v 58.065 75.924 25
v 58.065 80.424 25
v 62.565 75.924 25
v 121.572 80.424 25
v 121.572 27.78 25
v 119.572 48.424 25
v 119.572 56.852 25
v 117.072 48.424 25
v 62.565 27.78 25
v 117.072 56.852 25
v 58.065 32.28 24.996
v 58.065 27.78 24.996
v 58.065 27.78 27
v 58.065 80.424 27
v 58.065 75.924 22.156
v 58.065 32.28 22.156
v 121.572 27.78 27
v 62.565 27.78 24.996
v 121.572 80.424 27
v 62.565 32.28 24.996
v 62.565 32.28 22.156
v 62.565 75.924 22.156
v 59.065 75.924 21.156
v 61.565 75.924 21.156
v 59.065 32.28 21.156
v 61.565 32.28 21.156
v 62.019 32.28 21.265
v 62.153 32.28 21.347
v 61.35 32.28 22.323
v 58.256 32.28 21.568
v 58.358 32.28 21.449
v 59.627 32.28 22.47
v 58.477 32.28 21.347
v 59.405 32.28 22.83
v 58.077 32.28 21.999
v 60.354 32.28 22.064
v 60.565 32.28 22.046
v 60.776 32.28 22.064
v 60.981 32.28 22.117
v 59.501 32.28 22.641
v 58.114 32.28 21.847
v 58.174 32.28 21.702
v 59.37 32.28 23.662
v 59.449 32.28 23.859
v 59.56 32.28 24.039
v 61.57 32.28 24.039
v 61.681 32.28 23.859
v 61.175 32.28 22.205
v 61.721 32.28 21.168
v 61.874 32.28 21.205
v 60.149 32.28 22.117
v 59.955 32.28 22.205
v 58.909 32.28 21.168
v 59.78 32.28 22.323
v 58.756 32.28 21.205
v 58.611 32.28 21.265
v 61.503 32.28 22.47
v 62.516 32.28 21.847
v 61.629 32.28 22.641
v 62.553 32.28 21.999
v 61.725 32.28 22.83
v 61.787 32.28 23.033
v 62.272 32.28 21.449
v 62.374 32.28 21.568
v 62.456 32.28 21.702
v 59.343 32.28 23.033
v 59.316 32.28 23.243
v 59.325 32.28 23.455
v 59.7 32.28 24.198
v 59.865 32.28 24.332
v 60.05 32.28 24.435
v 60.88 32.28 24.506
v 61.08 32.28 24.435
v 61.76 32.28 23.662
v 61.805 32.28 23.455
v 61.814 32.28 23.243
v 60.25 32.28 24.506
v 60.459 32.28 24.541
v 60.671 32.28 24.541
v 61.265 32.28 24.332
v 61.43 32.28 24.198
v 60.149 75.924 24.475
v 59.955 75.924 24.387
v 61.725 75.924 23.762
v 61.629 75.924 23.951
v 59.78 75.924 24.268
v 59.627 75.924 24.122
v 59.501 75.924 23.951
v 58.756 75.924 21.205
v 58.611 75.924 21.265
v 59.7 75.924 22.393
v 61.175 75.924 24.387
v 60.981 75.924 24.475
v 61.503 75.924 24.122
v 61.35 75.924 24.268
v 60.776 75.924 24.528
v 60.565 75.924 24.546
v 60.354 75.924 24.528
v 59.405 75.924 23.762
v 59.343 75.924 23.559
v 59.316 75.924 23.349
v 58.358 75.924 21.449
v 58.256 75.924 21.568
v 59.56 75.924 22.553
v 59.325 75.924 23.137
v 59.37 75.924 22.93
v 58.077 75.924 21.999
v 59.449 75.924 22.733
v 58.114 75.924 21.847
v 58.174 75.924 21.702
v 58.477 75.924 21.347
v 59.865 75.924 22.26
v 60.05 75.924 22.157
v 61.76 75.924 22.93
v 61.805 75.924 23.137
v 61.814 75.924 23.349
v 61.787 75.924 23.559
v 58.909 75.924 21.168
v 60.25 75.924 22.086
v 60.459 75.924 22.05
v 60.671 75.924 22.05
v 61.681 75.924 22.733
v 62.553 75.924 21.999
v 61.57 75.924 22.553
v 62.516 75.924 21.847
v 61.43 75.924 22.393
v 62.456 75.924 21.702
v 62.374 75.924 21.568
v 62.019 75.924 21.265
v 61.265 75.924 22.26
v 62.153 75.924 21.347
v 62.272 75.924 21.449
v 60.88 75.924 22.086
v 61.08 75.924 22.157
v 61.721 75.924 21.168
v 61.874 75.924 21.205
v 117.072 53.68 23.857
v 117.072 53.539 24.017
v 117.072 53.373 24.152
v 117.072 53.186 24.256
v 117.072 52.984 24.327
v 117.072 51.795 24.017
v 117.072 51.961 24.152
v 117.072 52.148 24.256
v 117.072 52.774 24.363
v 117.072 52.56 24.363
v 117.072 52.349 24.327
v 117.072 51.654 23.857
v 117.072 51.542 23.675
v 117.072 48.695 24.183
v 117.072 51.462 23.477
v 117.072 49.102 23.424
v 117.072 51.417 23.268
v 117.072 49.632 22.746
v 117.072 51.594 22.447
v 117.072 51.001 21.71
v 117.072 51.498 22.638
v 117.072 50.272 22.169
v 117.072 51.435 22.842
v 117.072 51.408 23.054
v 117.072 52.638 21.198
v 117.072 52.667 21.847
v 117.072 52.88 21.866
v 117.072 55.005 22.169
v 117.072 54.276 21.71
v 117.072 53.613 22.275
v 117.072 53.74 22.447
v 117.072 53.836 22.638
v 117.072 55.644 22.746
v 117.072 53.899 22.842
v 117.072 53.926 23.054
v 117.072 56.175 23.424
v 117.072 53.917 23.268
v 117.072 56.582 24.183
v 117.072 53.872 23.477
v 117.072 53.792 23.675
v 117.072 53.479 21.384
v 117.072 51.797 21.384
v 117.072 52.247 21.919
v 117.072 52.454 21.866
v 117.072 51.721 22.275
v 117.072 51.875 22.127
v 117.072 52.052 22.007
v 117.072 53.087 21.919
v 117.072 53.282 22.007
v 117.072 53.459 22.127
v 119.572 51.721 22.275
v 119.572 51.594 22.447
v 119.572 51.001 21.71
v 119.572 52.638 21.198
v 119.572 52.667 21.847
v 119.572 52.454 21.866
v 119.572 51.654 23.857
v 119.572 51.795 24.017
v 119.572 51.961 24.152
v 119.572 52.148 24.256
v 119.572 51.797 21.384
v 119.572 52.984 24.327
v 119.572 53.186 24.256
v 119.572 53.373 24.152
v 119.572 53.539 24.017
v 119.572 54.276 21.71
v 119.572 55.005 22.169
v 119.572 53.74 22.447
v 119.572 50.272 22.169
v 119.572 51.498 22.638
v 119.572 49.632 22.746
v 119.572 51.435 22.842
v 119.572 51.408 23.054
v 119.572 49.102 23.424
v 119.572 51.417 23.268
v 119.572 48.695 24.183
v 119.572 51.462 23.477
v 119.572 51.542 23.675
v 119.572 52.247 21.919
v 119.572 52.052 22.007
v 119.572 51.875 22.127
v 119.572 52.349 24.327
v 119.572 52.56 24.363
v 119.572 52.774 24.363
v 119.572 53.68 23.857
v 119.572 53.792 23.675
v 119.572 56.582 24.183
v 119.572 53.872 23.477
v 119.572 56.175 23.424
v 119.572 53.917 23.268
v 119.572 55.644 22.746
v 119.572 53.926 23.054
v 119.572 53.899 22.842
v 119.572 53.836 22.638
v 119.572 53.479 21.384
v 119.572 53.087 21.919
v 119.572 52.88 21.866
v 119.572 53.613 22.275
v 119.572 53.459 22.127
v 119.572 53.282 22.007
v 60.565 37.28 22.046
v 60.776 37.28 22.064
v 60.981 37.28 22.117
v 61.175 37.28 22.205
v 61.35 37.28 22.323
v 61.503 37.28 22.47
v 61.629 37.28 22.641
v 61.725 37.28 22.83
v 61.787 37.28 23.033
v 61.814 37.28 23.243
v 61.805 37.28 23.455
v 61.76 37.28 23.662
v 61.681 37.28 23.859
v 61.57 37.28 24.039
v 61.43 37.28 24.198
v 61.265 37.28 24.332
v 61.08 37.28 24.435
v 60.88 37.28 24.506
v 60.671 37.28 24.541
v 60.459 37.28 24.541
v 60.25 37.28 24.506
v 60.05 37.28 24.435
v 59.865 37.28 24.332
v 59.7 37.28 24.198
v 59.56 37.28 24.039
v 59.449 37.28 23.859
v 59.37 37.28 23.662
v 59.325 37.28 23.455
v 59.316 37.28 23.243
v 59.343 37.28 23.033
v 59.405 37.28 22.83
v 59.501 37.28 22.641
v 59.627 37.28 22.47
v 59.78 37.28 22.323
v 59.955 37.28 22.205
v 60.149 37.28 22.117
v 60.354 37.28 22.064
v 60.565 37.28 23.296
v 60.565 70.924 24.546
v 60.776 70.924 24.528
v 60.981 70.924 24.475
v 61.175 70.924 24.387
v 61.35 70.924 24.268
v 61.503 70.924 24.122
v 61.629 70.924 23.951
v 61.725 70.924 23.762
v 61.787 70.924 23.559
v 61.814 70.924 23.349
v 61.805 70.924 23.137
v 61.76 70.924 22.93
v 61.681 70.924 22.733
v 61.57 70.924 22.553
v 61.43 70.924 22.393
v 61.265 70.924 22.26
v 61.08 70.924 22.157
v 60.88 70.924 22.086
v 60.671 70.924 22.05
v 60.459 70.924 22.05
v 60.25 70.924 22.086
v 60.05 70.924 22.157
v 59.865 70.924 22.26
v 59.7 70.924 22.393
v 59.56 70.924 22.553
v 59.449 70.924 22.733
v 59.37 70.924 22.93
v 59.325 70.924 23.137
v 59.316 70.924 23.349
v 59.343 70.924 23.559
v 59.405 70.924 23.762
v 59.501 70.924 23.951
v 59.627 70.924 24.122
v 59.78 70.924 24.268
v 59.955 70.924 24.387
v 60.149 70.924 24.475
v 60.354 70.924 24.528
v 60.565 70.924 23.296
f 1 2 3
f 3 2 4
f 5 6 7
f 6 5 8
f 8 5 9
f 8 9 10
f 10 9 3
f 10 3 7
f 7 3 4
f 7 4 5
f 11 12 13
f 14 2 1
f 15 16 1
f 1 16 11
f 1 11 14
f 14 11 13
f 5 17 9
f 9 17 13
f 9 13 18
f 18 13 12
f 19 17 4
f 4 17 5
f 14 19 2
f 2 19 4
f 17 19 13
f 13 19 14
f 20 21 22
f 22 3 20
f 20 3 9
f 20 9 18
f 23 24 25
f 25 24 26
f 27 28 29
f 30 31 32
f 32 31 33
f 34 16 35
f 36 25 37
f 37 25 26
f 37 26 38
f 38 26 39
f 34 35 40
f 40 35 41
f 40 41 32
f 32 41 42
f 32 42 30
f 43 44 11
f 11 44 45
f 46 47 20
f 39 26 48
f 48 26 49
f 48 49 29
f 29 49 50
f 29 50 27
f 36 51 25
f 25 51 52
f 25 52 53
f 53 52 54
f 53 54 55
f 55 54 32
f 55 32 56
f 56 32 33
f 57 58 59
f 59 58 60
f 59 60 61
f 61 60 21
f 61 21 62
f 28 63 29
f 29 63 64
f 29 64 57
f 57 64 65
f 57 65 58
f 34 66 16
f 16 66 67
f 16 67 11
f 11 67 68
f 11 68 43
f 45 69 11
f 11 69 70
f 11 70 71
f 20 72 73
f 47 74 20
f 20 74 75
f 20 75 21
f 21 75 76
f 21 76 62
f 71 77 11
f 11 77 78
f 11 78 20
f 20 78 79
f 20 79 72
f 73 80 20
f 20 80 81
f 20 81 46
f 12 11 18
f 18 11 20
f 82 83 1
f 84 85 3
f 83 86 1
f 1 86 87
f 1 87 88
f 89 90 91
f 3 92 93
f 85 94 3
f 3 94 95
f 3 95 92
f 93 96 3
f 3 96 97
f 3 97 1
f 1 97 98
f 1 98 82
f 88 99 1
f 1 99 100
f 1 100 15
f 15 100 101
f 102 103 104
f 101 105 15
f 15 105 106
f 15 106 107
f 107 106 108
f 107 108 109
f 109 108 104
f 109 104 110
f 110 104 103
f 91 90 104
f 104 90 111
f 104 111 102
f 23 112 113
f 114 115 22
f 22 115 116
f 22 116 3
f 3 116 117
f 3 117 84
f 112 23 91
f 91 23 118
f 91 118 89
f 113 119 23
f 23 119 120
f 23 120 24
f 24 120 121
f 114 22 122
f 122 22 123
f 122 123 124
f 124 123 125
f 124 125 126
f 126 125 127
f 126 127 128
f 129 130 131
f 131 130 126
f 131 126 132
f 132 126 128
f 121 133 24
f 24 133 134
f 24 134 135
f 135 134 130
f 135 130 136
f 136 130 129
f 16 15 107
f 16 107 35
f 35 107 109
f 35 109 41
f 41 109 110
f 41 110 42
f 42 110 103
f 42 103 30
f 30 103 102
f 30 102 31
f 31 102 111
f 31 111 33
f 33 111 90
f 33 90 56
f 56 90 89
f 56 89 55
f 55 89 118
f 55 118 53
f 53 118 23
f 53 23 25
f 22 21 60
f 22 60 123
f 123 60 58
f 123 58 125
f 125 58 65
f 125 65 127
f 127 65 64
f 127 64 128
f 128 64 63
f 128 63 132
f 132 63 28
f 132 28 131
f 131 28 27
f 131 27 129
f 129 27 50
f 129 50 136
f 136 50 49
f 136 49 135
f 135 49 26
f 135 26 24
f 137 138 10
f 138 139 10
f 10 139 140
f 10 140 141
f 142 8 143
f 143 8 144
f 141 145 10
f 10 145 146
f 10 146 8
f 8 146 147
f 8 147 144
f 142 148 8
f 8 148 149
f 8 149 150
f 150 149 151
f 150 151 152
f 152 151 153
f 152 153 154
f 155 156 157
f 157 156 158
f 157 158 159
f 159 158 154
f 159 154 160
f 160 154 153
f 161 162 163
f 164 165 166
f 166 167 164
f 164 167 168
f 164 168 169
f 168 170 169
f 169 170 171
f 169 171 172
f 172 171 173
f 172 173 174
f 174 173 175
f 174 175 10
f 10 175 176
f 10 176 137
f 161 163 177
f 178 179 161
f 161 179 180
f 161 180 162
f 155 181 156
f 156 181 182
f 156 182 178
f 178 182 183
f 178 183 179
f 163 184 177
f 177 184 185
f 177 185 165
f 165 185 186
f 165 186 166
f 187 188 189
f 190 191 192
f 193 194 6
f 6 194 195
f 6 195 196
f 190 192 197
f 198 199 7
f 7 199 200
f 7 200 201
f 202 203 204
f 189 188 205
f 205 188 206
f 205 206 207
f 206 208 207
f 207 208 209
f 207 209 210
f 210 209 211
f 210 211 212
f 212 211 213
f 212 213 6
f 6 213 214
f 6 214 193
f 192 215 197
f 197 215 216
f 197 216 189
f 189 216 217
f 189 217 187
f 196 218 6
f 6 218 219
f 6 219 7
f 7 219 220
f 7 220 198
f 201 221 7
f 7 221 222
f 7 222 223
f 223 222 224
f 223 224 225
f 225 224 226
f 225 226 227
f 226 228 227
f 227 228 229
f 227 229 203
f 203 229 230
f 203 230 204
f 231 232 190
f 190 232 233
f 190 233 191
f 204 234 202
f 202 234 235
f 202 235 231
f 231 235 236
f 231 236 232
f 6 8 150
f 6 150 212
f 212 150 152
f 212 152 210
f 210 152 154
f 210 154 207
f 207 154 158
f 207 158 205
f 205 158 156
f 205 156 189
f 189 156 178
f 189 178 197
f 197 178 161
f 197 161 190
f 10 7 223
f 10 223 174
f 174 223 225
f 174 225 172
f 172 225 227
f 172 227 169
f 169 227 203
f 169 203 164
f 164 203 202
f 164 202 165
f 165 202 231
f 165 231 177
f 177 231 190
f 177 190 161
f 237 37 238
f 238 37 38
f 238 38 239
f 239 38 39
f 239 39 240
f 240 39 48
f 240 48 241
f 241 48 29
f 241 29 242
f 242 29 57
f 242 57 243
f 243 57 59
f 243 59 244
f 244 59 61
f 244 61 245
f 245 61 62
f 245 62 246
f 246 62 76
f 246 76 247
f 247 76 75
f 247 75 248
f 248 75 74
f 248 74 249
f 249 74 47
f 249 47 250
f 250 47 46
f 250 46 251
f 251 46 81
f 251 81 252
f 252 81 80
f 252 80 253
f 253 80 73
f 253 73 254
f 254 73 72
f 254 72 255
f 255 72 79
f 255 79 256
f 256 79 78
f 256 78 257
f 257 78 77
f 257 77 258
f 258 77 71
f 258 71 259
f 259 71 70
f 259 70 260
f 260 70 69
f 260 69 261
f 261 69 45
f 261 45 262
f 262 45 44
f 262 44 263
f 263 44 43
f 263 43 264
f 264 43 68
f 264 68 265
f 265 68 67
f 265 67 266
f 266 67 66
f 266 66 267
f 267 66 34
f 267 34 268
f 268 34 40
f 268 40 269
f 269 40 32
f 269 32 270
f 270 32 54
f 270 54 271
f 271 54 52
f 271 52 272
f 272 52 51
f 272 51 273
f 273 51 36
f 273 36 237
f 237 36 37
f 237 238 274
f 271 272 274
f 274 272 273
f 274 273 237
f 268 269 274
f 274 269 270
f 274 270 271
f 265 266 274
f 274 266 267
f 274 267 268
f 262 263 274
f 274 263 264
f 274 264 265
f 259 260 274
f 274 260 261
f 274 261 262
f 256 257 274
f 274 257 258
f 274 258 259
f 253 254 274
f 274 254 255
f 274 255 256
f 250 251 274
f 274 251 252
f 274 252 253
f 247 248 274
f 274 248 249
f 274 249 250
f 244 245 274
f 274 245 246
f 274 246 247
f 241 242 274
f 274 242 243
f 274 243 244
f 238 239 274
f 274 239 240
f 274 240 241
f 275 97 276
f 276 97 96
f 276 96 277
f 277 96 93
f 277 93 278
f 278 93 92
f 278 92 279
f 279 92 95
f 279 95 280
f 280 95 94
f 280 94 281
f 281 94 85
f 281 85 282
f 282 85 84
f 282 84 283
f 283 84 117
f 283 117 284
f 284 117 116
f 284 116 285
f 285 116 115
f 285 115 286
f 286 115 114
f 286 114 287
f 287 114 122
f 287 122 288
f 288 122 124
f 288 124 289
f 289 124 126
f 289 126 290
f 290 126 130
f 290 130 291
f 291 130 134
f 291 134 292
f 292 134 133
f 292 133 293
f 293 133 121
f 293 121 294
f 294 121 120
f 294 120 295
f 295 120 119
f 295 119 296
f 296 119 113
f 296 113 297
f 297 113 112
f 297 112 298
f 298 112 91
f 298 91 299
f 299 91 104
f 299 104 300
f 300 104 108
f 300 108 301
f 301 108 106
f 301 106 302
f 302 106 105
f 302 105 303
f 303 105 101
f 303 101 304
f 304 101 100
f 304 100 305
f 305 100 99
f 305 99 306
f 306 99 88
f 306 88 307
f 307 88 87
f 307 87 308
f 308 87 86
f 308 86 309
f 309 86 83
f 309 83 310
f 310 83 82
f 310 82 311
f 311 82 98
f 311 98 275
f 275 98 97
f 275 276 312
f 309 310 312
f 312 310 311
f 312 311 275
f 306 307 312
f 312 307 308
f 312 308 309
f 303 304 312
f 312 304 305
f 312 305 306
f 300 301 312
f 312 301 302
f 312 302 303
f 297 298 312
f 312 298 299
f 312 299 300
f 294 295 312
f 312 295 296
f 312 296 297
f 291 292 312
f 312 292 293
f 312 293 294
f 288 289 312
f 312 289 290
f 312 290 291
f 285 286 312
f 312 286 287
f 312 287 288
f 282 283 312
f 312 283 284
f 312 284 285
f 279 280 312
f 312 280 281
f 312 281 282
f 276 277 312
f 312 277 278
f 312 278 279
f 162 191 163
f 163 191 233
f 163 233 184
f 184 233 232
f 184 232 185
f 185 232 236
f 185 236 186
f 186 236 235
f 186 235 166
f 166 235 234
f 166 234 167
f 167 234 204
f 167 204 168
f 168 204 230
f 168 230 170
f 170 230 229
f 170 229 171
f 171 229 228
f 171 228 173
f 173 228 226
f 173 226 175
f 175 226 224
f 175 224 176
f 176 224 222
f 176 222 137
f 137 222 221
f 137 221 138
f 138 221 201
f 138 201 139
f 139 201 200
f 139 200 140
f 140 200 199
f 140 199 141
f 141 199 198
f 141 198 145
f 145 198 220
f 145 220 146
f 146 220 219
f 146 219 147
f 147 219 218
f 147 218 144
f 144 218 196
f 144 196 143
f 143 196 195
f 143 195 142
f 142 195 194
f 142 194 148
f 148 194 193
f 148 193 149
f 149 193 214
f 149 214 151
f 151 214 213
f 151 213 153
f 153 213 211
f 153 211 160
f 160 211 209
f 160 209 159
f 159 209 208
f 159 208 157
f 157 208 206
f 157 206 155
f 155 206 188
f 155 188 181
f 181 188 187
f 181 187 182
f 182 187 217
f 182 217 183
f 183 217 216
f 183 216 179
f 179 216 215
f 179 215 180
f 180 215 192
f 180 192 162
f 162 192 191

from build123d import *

# Parameters (mm, degrees)
BOSS_EXTRUDE1_START = 5
SKETCH2_W           = 63.507
SKETCH2_H           = 52.644
BOSS_EXTRUDE1_DEPTH = 2
SKETCH5_W           = 4.5
SKETCH5_H           = 3.844091241
BOSS_EXTRUDE2_DEPTH = 52.5
SKETCH8_W           = 3.84
SKETCH8_H           = 4.5
CUT_EXTRUDE1_DEPTH  = 5
SKETCH9_W           = 3.844091241
SKETCH9_H           = 4.5
CUT_EXTRUDE2_DEPTH  = 5
FILLET1_R           = 1
BOSS_EXTRUDE3_START = -2
SKETCH10_W          = 3.844091241
SKETCH10_H          = 8.427653373
BOSS_EXTRUDE3_DEPTH = 2.5
FILLET2_R           = 5
SKETCH11_R          = 1.25
CUT_EXTRUDE3_DEPTH  = 5
CUT_EXTRUDE4_START  = -5
SKETCH12_R          = 1.25
CUT_EXTRUDE4_DEPTH  = 5
SKETCH16_R          = 1.26021762
CUT_EXTRUDE5_DEPTH  = 4


with BuildPart() as part:
    # Sketch2 → Boss-Extrude1 (new body)
    with BuildSketch(Plane.XY.offset(20).offset(BOSS_EXTRUDE1_START)):
        with Locations((89.8185, 54.102)):
            Rectangle(SKETCH2_W, SKETCH2_H)
    extrude(amount=BOSS_EXTRUDE1_DEPTH)

    # Sketch5 → Boss-Extrude2 (add)
    with BuildSketch(Plane.XZ.offset(-27.78)):
        with Locations((60.315, 23.077954379)):
            Rectangle(SKETCH5_W, SKETCH5_H)
    extrude(amount=-BOSS_EXTRUDE2_DEPTH)

    # Sketch8 → Cut-Extrude1 (cut)
    with BuildSketch(Plane.ZY.offset(-58.065)):
        with Locations((23.075908759, 30.03)):
            Rectangle(SKETCH8_W, SKETCH8_H)
    extrude(amount=-CUT_EXTRUDE1_DEPTH, mode=Mode.SUBTRACT)

    # Sketch9 → Cut-Extrude2 (cut)
    with BuildSketch(Plane.ZY.offset(-58.065)):
        with Locations((23.077954379, 78.174)):
            Rectangle(SKETCH9_W, SKETCH9_H)
    extrude(amount=-CUT_EXTRUDE2_DEPTH, mode=Mode.SUBTRACT)

    # Fillet1
    fillet1_edges = [part.edges().sort_by_distance(p)[0] for p in [
        (58.065, 54.102, 21.155908759),
        (62.565, 54.102, 21.155908759),
    ]]
    fillet(fillet1_edges, radius=FILLET1_R)

    # Sketch10 → Boss-Extrude3 (add)
    with BuildSketch(Plane(origin=(121.572, 0, 0), x_dir=(0, 0, -1), z_dir=(1, 0, 0)).offset(BOSS_EXTRUDE3_START)):
        with Locations((-23.077954379, 52.638173314)):
            Rectangle(SKETCH10_W, SKETCH10_H)
    extrude(amount=-BOSS_EXTRUDE3_DEPTH)

    # Fillet2
    # the kernel refuses this fillet: 5 mm, written as the material it takes off along each edge
    with BuildSketch(Plane(origin=(131.733382256, 56.852, 21.155908759), x_dir=(0, 0, 1), z_dir=(-1, 0, 0))) as fillet2_piece_1:
        with BuildLine():
            CenterArc((5, -4.864552903), FILLET2_R, 103.366656392, 76.633343608)
            Line((0, -4.864552903), (-0.1, -4.864552903))
            Line((-0.1, -4.864552903), (-0.1, 0))
            Line((-0.1, 0), (0, 0.1))
            ThreePointArc((0, 0.1), (1.922045621, 0.1), (3.820973066, 0.097291058))
            Line((3.820973066, 0.097291058), (3.844091241, 0))
        make_face()
    extrude(amount=26.822764513, mode=Mode.SUBTRACT)
    with BuildSketch(Plane(origin=(131.733382256, 48.424346627, 21.155908759), x_dir=(0, 0, 1), z_dir=(-1, 0, 0))) as fillet2_piece_2:
        with BuildLine():
            CenterArc((5, 4.864552903), FILLET2_R, 180, 76.633343608)
            Line((0, 4.864552903), (-0.1, 4.864552903))
            Line((-0.1, 4.864552903), (-0.1, 0))
            Line((-0.1, 0), (0, -0.1))
            ThreePointArc((0, -0.1), (1.922045621, -0.1), (3.820973066, -0.097291058))
            Line((3.820973066, -0.097291058), (3.844091241, 0))
        make_face()
    extrude(amount=26.822764513, mode=Mode.SUBTRACT)

    # Sketch11 → Cut-Extrude3 (cut)
    with BuildSketch(Plane(origin=(0, 32.28, 0), x_dir=(-1, 0, 0), z_dir=(0, -1, 0))):
        with Locations(Location((-60.565, -23.295908759, 0), (0, 0, 90))):
            Circle(SKETCH11_R)
    extrude(amount=-CUT_EXTRUDE3_DEPTH, mode=Mode.SUBTRACT)

    # Sketch12 → Cut-Extrude4 (cut)
    with BuildSketch(Plane(origin=(0, 75.924, 0), x_dir=(1, 0, 0), z_dir=(0, 1, 0)).offset(CUT_EXTRUDE4_START)):
        with Locations(Location((60.565, -23.295908759, 0), (0, 0, 90))):
            Circle(SKETCH12_R)
    extrude(amount=CUT_EXTRUDE4_DEPTH, mode=Mode.SUBTRACT)

    # Sketch16 → Cut-Extrude5 (cut)
    with BuildSketch(Plane(origin=(119.572, 0, 0), x_dir=(0, 0, -1), z_dir=(1, 0, 0))):
        with Locations((-23.10766013, 52.666921641)):
            Circle(SKETCH16_R)
    extrude(amount=-CUT_EXTRUDE5_DEPTH, mode=Mode.SUBTRACT)


solid = part.part
